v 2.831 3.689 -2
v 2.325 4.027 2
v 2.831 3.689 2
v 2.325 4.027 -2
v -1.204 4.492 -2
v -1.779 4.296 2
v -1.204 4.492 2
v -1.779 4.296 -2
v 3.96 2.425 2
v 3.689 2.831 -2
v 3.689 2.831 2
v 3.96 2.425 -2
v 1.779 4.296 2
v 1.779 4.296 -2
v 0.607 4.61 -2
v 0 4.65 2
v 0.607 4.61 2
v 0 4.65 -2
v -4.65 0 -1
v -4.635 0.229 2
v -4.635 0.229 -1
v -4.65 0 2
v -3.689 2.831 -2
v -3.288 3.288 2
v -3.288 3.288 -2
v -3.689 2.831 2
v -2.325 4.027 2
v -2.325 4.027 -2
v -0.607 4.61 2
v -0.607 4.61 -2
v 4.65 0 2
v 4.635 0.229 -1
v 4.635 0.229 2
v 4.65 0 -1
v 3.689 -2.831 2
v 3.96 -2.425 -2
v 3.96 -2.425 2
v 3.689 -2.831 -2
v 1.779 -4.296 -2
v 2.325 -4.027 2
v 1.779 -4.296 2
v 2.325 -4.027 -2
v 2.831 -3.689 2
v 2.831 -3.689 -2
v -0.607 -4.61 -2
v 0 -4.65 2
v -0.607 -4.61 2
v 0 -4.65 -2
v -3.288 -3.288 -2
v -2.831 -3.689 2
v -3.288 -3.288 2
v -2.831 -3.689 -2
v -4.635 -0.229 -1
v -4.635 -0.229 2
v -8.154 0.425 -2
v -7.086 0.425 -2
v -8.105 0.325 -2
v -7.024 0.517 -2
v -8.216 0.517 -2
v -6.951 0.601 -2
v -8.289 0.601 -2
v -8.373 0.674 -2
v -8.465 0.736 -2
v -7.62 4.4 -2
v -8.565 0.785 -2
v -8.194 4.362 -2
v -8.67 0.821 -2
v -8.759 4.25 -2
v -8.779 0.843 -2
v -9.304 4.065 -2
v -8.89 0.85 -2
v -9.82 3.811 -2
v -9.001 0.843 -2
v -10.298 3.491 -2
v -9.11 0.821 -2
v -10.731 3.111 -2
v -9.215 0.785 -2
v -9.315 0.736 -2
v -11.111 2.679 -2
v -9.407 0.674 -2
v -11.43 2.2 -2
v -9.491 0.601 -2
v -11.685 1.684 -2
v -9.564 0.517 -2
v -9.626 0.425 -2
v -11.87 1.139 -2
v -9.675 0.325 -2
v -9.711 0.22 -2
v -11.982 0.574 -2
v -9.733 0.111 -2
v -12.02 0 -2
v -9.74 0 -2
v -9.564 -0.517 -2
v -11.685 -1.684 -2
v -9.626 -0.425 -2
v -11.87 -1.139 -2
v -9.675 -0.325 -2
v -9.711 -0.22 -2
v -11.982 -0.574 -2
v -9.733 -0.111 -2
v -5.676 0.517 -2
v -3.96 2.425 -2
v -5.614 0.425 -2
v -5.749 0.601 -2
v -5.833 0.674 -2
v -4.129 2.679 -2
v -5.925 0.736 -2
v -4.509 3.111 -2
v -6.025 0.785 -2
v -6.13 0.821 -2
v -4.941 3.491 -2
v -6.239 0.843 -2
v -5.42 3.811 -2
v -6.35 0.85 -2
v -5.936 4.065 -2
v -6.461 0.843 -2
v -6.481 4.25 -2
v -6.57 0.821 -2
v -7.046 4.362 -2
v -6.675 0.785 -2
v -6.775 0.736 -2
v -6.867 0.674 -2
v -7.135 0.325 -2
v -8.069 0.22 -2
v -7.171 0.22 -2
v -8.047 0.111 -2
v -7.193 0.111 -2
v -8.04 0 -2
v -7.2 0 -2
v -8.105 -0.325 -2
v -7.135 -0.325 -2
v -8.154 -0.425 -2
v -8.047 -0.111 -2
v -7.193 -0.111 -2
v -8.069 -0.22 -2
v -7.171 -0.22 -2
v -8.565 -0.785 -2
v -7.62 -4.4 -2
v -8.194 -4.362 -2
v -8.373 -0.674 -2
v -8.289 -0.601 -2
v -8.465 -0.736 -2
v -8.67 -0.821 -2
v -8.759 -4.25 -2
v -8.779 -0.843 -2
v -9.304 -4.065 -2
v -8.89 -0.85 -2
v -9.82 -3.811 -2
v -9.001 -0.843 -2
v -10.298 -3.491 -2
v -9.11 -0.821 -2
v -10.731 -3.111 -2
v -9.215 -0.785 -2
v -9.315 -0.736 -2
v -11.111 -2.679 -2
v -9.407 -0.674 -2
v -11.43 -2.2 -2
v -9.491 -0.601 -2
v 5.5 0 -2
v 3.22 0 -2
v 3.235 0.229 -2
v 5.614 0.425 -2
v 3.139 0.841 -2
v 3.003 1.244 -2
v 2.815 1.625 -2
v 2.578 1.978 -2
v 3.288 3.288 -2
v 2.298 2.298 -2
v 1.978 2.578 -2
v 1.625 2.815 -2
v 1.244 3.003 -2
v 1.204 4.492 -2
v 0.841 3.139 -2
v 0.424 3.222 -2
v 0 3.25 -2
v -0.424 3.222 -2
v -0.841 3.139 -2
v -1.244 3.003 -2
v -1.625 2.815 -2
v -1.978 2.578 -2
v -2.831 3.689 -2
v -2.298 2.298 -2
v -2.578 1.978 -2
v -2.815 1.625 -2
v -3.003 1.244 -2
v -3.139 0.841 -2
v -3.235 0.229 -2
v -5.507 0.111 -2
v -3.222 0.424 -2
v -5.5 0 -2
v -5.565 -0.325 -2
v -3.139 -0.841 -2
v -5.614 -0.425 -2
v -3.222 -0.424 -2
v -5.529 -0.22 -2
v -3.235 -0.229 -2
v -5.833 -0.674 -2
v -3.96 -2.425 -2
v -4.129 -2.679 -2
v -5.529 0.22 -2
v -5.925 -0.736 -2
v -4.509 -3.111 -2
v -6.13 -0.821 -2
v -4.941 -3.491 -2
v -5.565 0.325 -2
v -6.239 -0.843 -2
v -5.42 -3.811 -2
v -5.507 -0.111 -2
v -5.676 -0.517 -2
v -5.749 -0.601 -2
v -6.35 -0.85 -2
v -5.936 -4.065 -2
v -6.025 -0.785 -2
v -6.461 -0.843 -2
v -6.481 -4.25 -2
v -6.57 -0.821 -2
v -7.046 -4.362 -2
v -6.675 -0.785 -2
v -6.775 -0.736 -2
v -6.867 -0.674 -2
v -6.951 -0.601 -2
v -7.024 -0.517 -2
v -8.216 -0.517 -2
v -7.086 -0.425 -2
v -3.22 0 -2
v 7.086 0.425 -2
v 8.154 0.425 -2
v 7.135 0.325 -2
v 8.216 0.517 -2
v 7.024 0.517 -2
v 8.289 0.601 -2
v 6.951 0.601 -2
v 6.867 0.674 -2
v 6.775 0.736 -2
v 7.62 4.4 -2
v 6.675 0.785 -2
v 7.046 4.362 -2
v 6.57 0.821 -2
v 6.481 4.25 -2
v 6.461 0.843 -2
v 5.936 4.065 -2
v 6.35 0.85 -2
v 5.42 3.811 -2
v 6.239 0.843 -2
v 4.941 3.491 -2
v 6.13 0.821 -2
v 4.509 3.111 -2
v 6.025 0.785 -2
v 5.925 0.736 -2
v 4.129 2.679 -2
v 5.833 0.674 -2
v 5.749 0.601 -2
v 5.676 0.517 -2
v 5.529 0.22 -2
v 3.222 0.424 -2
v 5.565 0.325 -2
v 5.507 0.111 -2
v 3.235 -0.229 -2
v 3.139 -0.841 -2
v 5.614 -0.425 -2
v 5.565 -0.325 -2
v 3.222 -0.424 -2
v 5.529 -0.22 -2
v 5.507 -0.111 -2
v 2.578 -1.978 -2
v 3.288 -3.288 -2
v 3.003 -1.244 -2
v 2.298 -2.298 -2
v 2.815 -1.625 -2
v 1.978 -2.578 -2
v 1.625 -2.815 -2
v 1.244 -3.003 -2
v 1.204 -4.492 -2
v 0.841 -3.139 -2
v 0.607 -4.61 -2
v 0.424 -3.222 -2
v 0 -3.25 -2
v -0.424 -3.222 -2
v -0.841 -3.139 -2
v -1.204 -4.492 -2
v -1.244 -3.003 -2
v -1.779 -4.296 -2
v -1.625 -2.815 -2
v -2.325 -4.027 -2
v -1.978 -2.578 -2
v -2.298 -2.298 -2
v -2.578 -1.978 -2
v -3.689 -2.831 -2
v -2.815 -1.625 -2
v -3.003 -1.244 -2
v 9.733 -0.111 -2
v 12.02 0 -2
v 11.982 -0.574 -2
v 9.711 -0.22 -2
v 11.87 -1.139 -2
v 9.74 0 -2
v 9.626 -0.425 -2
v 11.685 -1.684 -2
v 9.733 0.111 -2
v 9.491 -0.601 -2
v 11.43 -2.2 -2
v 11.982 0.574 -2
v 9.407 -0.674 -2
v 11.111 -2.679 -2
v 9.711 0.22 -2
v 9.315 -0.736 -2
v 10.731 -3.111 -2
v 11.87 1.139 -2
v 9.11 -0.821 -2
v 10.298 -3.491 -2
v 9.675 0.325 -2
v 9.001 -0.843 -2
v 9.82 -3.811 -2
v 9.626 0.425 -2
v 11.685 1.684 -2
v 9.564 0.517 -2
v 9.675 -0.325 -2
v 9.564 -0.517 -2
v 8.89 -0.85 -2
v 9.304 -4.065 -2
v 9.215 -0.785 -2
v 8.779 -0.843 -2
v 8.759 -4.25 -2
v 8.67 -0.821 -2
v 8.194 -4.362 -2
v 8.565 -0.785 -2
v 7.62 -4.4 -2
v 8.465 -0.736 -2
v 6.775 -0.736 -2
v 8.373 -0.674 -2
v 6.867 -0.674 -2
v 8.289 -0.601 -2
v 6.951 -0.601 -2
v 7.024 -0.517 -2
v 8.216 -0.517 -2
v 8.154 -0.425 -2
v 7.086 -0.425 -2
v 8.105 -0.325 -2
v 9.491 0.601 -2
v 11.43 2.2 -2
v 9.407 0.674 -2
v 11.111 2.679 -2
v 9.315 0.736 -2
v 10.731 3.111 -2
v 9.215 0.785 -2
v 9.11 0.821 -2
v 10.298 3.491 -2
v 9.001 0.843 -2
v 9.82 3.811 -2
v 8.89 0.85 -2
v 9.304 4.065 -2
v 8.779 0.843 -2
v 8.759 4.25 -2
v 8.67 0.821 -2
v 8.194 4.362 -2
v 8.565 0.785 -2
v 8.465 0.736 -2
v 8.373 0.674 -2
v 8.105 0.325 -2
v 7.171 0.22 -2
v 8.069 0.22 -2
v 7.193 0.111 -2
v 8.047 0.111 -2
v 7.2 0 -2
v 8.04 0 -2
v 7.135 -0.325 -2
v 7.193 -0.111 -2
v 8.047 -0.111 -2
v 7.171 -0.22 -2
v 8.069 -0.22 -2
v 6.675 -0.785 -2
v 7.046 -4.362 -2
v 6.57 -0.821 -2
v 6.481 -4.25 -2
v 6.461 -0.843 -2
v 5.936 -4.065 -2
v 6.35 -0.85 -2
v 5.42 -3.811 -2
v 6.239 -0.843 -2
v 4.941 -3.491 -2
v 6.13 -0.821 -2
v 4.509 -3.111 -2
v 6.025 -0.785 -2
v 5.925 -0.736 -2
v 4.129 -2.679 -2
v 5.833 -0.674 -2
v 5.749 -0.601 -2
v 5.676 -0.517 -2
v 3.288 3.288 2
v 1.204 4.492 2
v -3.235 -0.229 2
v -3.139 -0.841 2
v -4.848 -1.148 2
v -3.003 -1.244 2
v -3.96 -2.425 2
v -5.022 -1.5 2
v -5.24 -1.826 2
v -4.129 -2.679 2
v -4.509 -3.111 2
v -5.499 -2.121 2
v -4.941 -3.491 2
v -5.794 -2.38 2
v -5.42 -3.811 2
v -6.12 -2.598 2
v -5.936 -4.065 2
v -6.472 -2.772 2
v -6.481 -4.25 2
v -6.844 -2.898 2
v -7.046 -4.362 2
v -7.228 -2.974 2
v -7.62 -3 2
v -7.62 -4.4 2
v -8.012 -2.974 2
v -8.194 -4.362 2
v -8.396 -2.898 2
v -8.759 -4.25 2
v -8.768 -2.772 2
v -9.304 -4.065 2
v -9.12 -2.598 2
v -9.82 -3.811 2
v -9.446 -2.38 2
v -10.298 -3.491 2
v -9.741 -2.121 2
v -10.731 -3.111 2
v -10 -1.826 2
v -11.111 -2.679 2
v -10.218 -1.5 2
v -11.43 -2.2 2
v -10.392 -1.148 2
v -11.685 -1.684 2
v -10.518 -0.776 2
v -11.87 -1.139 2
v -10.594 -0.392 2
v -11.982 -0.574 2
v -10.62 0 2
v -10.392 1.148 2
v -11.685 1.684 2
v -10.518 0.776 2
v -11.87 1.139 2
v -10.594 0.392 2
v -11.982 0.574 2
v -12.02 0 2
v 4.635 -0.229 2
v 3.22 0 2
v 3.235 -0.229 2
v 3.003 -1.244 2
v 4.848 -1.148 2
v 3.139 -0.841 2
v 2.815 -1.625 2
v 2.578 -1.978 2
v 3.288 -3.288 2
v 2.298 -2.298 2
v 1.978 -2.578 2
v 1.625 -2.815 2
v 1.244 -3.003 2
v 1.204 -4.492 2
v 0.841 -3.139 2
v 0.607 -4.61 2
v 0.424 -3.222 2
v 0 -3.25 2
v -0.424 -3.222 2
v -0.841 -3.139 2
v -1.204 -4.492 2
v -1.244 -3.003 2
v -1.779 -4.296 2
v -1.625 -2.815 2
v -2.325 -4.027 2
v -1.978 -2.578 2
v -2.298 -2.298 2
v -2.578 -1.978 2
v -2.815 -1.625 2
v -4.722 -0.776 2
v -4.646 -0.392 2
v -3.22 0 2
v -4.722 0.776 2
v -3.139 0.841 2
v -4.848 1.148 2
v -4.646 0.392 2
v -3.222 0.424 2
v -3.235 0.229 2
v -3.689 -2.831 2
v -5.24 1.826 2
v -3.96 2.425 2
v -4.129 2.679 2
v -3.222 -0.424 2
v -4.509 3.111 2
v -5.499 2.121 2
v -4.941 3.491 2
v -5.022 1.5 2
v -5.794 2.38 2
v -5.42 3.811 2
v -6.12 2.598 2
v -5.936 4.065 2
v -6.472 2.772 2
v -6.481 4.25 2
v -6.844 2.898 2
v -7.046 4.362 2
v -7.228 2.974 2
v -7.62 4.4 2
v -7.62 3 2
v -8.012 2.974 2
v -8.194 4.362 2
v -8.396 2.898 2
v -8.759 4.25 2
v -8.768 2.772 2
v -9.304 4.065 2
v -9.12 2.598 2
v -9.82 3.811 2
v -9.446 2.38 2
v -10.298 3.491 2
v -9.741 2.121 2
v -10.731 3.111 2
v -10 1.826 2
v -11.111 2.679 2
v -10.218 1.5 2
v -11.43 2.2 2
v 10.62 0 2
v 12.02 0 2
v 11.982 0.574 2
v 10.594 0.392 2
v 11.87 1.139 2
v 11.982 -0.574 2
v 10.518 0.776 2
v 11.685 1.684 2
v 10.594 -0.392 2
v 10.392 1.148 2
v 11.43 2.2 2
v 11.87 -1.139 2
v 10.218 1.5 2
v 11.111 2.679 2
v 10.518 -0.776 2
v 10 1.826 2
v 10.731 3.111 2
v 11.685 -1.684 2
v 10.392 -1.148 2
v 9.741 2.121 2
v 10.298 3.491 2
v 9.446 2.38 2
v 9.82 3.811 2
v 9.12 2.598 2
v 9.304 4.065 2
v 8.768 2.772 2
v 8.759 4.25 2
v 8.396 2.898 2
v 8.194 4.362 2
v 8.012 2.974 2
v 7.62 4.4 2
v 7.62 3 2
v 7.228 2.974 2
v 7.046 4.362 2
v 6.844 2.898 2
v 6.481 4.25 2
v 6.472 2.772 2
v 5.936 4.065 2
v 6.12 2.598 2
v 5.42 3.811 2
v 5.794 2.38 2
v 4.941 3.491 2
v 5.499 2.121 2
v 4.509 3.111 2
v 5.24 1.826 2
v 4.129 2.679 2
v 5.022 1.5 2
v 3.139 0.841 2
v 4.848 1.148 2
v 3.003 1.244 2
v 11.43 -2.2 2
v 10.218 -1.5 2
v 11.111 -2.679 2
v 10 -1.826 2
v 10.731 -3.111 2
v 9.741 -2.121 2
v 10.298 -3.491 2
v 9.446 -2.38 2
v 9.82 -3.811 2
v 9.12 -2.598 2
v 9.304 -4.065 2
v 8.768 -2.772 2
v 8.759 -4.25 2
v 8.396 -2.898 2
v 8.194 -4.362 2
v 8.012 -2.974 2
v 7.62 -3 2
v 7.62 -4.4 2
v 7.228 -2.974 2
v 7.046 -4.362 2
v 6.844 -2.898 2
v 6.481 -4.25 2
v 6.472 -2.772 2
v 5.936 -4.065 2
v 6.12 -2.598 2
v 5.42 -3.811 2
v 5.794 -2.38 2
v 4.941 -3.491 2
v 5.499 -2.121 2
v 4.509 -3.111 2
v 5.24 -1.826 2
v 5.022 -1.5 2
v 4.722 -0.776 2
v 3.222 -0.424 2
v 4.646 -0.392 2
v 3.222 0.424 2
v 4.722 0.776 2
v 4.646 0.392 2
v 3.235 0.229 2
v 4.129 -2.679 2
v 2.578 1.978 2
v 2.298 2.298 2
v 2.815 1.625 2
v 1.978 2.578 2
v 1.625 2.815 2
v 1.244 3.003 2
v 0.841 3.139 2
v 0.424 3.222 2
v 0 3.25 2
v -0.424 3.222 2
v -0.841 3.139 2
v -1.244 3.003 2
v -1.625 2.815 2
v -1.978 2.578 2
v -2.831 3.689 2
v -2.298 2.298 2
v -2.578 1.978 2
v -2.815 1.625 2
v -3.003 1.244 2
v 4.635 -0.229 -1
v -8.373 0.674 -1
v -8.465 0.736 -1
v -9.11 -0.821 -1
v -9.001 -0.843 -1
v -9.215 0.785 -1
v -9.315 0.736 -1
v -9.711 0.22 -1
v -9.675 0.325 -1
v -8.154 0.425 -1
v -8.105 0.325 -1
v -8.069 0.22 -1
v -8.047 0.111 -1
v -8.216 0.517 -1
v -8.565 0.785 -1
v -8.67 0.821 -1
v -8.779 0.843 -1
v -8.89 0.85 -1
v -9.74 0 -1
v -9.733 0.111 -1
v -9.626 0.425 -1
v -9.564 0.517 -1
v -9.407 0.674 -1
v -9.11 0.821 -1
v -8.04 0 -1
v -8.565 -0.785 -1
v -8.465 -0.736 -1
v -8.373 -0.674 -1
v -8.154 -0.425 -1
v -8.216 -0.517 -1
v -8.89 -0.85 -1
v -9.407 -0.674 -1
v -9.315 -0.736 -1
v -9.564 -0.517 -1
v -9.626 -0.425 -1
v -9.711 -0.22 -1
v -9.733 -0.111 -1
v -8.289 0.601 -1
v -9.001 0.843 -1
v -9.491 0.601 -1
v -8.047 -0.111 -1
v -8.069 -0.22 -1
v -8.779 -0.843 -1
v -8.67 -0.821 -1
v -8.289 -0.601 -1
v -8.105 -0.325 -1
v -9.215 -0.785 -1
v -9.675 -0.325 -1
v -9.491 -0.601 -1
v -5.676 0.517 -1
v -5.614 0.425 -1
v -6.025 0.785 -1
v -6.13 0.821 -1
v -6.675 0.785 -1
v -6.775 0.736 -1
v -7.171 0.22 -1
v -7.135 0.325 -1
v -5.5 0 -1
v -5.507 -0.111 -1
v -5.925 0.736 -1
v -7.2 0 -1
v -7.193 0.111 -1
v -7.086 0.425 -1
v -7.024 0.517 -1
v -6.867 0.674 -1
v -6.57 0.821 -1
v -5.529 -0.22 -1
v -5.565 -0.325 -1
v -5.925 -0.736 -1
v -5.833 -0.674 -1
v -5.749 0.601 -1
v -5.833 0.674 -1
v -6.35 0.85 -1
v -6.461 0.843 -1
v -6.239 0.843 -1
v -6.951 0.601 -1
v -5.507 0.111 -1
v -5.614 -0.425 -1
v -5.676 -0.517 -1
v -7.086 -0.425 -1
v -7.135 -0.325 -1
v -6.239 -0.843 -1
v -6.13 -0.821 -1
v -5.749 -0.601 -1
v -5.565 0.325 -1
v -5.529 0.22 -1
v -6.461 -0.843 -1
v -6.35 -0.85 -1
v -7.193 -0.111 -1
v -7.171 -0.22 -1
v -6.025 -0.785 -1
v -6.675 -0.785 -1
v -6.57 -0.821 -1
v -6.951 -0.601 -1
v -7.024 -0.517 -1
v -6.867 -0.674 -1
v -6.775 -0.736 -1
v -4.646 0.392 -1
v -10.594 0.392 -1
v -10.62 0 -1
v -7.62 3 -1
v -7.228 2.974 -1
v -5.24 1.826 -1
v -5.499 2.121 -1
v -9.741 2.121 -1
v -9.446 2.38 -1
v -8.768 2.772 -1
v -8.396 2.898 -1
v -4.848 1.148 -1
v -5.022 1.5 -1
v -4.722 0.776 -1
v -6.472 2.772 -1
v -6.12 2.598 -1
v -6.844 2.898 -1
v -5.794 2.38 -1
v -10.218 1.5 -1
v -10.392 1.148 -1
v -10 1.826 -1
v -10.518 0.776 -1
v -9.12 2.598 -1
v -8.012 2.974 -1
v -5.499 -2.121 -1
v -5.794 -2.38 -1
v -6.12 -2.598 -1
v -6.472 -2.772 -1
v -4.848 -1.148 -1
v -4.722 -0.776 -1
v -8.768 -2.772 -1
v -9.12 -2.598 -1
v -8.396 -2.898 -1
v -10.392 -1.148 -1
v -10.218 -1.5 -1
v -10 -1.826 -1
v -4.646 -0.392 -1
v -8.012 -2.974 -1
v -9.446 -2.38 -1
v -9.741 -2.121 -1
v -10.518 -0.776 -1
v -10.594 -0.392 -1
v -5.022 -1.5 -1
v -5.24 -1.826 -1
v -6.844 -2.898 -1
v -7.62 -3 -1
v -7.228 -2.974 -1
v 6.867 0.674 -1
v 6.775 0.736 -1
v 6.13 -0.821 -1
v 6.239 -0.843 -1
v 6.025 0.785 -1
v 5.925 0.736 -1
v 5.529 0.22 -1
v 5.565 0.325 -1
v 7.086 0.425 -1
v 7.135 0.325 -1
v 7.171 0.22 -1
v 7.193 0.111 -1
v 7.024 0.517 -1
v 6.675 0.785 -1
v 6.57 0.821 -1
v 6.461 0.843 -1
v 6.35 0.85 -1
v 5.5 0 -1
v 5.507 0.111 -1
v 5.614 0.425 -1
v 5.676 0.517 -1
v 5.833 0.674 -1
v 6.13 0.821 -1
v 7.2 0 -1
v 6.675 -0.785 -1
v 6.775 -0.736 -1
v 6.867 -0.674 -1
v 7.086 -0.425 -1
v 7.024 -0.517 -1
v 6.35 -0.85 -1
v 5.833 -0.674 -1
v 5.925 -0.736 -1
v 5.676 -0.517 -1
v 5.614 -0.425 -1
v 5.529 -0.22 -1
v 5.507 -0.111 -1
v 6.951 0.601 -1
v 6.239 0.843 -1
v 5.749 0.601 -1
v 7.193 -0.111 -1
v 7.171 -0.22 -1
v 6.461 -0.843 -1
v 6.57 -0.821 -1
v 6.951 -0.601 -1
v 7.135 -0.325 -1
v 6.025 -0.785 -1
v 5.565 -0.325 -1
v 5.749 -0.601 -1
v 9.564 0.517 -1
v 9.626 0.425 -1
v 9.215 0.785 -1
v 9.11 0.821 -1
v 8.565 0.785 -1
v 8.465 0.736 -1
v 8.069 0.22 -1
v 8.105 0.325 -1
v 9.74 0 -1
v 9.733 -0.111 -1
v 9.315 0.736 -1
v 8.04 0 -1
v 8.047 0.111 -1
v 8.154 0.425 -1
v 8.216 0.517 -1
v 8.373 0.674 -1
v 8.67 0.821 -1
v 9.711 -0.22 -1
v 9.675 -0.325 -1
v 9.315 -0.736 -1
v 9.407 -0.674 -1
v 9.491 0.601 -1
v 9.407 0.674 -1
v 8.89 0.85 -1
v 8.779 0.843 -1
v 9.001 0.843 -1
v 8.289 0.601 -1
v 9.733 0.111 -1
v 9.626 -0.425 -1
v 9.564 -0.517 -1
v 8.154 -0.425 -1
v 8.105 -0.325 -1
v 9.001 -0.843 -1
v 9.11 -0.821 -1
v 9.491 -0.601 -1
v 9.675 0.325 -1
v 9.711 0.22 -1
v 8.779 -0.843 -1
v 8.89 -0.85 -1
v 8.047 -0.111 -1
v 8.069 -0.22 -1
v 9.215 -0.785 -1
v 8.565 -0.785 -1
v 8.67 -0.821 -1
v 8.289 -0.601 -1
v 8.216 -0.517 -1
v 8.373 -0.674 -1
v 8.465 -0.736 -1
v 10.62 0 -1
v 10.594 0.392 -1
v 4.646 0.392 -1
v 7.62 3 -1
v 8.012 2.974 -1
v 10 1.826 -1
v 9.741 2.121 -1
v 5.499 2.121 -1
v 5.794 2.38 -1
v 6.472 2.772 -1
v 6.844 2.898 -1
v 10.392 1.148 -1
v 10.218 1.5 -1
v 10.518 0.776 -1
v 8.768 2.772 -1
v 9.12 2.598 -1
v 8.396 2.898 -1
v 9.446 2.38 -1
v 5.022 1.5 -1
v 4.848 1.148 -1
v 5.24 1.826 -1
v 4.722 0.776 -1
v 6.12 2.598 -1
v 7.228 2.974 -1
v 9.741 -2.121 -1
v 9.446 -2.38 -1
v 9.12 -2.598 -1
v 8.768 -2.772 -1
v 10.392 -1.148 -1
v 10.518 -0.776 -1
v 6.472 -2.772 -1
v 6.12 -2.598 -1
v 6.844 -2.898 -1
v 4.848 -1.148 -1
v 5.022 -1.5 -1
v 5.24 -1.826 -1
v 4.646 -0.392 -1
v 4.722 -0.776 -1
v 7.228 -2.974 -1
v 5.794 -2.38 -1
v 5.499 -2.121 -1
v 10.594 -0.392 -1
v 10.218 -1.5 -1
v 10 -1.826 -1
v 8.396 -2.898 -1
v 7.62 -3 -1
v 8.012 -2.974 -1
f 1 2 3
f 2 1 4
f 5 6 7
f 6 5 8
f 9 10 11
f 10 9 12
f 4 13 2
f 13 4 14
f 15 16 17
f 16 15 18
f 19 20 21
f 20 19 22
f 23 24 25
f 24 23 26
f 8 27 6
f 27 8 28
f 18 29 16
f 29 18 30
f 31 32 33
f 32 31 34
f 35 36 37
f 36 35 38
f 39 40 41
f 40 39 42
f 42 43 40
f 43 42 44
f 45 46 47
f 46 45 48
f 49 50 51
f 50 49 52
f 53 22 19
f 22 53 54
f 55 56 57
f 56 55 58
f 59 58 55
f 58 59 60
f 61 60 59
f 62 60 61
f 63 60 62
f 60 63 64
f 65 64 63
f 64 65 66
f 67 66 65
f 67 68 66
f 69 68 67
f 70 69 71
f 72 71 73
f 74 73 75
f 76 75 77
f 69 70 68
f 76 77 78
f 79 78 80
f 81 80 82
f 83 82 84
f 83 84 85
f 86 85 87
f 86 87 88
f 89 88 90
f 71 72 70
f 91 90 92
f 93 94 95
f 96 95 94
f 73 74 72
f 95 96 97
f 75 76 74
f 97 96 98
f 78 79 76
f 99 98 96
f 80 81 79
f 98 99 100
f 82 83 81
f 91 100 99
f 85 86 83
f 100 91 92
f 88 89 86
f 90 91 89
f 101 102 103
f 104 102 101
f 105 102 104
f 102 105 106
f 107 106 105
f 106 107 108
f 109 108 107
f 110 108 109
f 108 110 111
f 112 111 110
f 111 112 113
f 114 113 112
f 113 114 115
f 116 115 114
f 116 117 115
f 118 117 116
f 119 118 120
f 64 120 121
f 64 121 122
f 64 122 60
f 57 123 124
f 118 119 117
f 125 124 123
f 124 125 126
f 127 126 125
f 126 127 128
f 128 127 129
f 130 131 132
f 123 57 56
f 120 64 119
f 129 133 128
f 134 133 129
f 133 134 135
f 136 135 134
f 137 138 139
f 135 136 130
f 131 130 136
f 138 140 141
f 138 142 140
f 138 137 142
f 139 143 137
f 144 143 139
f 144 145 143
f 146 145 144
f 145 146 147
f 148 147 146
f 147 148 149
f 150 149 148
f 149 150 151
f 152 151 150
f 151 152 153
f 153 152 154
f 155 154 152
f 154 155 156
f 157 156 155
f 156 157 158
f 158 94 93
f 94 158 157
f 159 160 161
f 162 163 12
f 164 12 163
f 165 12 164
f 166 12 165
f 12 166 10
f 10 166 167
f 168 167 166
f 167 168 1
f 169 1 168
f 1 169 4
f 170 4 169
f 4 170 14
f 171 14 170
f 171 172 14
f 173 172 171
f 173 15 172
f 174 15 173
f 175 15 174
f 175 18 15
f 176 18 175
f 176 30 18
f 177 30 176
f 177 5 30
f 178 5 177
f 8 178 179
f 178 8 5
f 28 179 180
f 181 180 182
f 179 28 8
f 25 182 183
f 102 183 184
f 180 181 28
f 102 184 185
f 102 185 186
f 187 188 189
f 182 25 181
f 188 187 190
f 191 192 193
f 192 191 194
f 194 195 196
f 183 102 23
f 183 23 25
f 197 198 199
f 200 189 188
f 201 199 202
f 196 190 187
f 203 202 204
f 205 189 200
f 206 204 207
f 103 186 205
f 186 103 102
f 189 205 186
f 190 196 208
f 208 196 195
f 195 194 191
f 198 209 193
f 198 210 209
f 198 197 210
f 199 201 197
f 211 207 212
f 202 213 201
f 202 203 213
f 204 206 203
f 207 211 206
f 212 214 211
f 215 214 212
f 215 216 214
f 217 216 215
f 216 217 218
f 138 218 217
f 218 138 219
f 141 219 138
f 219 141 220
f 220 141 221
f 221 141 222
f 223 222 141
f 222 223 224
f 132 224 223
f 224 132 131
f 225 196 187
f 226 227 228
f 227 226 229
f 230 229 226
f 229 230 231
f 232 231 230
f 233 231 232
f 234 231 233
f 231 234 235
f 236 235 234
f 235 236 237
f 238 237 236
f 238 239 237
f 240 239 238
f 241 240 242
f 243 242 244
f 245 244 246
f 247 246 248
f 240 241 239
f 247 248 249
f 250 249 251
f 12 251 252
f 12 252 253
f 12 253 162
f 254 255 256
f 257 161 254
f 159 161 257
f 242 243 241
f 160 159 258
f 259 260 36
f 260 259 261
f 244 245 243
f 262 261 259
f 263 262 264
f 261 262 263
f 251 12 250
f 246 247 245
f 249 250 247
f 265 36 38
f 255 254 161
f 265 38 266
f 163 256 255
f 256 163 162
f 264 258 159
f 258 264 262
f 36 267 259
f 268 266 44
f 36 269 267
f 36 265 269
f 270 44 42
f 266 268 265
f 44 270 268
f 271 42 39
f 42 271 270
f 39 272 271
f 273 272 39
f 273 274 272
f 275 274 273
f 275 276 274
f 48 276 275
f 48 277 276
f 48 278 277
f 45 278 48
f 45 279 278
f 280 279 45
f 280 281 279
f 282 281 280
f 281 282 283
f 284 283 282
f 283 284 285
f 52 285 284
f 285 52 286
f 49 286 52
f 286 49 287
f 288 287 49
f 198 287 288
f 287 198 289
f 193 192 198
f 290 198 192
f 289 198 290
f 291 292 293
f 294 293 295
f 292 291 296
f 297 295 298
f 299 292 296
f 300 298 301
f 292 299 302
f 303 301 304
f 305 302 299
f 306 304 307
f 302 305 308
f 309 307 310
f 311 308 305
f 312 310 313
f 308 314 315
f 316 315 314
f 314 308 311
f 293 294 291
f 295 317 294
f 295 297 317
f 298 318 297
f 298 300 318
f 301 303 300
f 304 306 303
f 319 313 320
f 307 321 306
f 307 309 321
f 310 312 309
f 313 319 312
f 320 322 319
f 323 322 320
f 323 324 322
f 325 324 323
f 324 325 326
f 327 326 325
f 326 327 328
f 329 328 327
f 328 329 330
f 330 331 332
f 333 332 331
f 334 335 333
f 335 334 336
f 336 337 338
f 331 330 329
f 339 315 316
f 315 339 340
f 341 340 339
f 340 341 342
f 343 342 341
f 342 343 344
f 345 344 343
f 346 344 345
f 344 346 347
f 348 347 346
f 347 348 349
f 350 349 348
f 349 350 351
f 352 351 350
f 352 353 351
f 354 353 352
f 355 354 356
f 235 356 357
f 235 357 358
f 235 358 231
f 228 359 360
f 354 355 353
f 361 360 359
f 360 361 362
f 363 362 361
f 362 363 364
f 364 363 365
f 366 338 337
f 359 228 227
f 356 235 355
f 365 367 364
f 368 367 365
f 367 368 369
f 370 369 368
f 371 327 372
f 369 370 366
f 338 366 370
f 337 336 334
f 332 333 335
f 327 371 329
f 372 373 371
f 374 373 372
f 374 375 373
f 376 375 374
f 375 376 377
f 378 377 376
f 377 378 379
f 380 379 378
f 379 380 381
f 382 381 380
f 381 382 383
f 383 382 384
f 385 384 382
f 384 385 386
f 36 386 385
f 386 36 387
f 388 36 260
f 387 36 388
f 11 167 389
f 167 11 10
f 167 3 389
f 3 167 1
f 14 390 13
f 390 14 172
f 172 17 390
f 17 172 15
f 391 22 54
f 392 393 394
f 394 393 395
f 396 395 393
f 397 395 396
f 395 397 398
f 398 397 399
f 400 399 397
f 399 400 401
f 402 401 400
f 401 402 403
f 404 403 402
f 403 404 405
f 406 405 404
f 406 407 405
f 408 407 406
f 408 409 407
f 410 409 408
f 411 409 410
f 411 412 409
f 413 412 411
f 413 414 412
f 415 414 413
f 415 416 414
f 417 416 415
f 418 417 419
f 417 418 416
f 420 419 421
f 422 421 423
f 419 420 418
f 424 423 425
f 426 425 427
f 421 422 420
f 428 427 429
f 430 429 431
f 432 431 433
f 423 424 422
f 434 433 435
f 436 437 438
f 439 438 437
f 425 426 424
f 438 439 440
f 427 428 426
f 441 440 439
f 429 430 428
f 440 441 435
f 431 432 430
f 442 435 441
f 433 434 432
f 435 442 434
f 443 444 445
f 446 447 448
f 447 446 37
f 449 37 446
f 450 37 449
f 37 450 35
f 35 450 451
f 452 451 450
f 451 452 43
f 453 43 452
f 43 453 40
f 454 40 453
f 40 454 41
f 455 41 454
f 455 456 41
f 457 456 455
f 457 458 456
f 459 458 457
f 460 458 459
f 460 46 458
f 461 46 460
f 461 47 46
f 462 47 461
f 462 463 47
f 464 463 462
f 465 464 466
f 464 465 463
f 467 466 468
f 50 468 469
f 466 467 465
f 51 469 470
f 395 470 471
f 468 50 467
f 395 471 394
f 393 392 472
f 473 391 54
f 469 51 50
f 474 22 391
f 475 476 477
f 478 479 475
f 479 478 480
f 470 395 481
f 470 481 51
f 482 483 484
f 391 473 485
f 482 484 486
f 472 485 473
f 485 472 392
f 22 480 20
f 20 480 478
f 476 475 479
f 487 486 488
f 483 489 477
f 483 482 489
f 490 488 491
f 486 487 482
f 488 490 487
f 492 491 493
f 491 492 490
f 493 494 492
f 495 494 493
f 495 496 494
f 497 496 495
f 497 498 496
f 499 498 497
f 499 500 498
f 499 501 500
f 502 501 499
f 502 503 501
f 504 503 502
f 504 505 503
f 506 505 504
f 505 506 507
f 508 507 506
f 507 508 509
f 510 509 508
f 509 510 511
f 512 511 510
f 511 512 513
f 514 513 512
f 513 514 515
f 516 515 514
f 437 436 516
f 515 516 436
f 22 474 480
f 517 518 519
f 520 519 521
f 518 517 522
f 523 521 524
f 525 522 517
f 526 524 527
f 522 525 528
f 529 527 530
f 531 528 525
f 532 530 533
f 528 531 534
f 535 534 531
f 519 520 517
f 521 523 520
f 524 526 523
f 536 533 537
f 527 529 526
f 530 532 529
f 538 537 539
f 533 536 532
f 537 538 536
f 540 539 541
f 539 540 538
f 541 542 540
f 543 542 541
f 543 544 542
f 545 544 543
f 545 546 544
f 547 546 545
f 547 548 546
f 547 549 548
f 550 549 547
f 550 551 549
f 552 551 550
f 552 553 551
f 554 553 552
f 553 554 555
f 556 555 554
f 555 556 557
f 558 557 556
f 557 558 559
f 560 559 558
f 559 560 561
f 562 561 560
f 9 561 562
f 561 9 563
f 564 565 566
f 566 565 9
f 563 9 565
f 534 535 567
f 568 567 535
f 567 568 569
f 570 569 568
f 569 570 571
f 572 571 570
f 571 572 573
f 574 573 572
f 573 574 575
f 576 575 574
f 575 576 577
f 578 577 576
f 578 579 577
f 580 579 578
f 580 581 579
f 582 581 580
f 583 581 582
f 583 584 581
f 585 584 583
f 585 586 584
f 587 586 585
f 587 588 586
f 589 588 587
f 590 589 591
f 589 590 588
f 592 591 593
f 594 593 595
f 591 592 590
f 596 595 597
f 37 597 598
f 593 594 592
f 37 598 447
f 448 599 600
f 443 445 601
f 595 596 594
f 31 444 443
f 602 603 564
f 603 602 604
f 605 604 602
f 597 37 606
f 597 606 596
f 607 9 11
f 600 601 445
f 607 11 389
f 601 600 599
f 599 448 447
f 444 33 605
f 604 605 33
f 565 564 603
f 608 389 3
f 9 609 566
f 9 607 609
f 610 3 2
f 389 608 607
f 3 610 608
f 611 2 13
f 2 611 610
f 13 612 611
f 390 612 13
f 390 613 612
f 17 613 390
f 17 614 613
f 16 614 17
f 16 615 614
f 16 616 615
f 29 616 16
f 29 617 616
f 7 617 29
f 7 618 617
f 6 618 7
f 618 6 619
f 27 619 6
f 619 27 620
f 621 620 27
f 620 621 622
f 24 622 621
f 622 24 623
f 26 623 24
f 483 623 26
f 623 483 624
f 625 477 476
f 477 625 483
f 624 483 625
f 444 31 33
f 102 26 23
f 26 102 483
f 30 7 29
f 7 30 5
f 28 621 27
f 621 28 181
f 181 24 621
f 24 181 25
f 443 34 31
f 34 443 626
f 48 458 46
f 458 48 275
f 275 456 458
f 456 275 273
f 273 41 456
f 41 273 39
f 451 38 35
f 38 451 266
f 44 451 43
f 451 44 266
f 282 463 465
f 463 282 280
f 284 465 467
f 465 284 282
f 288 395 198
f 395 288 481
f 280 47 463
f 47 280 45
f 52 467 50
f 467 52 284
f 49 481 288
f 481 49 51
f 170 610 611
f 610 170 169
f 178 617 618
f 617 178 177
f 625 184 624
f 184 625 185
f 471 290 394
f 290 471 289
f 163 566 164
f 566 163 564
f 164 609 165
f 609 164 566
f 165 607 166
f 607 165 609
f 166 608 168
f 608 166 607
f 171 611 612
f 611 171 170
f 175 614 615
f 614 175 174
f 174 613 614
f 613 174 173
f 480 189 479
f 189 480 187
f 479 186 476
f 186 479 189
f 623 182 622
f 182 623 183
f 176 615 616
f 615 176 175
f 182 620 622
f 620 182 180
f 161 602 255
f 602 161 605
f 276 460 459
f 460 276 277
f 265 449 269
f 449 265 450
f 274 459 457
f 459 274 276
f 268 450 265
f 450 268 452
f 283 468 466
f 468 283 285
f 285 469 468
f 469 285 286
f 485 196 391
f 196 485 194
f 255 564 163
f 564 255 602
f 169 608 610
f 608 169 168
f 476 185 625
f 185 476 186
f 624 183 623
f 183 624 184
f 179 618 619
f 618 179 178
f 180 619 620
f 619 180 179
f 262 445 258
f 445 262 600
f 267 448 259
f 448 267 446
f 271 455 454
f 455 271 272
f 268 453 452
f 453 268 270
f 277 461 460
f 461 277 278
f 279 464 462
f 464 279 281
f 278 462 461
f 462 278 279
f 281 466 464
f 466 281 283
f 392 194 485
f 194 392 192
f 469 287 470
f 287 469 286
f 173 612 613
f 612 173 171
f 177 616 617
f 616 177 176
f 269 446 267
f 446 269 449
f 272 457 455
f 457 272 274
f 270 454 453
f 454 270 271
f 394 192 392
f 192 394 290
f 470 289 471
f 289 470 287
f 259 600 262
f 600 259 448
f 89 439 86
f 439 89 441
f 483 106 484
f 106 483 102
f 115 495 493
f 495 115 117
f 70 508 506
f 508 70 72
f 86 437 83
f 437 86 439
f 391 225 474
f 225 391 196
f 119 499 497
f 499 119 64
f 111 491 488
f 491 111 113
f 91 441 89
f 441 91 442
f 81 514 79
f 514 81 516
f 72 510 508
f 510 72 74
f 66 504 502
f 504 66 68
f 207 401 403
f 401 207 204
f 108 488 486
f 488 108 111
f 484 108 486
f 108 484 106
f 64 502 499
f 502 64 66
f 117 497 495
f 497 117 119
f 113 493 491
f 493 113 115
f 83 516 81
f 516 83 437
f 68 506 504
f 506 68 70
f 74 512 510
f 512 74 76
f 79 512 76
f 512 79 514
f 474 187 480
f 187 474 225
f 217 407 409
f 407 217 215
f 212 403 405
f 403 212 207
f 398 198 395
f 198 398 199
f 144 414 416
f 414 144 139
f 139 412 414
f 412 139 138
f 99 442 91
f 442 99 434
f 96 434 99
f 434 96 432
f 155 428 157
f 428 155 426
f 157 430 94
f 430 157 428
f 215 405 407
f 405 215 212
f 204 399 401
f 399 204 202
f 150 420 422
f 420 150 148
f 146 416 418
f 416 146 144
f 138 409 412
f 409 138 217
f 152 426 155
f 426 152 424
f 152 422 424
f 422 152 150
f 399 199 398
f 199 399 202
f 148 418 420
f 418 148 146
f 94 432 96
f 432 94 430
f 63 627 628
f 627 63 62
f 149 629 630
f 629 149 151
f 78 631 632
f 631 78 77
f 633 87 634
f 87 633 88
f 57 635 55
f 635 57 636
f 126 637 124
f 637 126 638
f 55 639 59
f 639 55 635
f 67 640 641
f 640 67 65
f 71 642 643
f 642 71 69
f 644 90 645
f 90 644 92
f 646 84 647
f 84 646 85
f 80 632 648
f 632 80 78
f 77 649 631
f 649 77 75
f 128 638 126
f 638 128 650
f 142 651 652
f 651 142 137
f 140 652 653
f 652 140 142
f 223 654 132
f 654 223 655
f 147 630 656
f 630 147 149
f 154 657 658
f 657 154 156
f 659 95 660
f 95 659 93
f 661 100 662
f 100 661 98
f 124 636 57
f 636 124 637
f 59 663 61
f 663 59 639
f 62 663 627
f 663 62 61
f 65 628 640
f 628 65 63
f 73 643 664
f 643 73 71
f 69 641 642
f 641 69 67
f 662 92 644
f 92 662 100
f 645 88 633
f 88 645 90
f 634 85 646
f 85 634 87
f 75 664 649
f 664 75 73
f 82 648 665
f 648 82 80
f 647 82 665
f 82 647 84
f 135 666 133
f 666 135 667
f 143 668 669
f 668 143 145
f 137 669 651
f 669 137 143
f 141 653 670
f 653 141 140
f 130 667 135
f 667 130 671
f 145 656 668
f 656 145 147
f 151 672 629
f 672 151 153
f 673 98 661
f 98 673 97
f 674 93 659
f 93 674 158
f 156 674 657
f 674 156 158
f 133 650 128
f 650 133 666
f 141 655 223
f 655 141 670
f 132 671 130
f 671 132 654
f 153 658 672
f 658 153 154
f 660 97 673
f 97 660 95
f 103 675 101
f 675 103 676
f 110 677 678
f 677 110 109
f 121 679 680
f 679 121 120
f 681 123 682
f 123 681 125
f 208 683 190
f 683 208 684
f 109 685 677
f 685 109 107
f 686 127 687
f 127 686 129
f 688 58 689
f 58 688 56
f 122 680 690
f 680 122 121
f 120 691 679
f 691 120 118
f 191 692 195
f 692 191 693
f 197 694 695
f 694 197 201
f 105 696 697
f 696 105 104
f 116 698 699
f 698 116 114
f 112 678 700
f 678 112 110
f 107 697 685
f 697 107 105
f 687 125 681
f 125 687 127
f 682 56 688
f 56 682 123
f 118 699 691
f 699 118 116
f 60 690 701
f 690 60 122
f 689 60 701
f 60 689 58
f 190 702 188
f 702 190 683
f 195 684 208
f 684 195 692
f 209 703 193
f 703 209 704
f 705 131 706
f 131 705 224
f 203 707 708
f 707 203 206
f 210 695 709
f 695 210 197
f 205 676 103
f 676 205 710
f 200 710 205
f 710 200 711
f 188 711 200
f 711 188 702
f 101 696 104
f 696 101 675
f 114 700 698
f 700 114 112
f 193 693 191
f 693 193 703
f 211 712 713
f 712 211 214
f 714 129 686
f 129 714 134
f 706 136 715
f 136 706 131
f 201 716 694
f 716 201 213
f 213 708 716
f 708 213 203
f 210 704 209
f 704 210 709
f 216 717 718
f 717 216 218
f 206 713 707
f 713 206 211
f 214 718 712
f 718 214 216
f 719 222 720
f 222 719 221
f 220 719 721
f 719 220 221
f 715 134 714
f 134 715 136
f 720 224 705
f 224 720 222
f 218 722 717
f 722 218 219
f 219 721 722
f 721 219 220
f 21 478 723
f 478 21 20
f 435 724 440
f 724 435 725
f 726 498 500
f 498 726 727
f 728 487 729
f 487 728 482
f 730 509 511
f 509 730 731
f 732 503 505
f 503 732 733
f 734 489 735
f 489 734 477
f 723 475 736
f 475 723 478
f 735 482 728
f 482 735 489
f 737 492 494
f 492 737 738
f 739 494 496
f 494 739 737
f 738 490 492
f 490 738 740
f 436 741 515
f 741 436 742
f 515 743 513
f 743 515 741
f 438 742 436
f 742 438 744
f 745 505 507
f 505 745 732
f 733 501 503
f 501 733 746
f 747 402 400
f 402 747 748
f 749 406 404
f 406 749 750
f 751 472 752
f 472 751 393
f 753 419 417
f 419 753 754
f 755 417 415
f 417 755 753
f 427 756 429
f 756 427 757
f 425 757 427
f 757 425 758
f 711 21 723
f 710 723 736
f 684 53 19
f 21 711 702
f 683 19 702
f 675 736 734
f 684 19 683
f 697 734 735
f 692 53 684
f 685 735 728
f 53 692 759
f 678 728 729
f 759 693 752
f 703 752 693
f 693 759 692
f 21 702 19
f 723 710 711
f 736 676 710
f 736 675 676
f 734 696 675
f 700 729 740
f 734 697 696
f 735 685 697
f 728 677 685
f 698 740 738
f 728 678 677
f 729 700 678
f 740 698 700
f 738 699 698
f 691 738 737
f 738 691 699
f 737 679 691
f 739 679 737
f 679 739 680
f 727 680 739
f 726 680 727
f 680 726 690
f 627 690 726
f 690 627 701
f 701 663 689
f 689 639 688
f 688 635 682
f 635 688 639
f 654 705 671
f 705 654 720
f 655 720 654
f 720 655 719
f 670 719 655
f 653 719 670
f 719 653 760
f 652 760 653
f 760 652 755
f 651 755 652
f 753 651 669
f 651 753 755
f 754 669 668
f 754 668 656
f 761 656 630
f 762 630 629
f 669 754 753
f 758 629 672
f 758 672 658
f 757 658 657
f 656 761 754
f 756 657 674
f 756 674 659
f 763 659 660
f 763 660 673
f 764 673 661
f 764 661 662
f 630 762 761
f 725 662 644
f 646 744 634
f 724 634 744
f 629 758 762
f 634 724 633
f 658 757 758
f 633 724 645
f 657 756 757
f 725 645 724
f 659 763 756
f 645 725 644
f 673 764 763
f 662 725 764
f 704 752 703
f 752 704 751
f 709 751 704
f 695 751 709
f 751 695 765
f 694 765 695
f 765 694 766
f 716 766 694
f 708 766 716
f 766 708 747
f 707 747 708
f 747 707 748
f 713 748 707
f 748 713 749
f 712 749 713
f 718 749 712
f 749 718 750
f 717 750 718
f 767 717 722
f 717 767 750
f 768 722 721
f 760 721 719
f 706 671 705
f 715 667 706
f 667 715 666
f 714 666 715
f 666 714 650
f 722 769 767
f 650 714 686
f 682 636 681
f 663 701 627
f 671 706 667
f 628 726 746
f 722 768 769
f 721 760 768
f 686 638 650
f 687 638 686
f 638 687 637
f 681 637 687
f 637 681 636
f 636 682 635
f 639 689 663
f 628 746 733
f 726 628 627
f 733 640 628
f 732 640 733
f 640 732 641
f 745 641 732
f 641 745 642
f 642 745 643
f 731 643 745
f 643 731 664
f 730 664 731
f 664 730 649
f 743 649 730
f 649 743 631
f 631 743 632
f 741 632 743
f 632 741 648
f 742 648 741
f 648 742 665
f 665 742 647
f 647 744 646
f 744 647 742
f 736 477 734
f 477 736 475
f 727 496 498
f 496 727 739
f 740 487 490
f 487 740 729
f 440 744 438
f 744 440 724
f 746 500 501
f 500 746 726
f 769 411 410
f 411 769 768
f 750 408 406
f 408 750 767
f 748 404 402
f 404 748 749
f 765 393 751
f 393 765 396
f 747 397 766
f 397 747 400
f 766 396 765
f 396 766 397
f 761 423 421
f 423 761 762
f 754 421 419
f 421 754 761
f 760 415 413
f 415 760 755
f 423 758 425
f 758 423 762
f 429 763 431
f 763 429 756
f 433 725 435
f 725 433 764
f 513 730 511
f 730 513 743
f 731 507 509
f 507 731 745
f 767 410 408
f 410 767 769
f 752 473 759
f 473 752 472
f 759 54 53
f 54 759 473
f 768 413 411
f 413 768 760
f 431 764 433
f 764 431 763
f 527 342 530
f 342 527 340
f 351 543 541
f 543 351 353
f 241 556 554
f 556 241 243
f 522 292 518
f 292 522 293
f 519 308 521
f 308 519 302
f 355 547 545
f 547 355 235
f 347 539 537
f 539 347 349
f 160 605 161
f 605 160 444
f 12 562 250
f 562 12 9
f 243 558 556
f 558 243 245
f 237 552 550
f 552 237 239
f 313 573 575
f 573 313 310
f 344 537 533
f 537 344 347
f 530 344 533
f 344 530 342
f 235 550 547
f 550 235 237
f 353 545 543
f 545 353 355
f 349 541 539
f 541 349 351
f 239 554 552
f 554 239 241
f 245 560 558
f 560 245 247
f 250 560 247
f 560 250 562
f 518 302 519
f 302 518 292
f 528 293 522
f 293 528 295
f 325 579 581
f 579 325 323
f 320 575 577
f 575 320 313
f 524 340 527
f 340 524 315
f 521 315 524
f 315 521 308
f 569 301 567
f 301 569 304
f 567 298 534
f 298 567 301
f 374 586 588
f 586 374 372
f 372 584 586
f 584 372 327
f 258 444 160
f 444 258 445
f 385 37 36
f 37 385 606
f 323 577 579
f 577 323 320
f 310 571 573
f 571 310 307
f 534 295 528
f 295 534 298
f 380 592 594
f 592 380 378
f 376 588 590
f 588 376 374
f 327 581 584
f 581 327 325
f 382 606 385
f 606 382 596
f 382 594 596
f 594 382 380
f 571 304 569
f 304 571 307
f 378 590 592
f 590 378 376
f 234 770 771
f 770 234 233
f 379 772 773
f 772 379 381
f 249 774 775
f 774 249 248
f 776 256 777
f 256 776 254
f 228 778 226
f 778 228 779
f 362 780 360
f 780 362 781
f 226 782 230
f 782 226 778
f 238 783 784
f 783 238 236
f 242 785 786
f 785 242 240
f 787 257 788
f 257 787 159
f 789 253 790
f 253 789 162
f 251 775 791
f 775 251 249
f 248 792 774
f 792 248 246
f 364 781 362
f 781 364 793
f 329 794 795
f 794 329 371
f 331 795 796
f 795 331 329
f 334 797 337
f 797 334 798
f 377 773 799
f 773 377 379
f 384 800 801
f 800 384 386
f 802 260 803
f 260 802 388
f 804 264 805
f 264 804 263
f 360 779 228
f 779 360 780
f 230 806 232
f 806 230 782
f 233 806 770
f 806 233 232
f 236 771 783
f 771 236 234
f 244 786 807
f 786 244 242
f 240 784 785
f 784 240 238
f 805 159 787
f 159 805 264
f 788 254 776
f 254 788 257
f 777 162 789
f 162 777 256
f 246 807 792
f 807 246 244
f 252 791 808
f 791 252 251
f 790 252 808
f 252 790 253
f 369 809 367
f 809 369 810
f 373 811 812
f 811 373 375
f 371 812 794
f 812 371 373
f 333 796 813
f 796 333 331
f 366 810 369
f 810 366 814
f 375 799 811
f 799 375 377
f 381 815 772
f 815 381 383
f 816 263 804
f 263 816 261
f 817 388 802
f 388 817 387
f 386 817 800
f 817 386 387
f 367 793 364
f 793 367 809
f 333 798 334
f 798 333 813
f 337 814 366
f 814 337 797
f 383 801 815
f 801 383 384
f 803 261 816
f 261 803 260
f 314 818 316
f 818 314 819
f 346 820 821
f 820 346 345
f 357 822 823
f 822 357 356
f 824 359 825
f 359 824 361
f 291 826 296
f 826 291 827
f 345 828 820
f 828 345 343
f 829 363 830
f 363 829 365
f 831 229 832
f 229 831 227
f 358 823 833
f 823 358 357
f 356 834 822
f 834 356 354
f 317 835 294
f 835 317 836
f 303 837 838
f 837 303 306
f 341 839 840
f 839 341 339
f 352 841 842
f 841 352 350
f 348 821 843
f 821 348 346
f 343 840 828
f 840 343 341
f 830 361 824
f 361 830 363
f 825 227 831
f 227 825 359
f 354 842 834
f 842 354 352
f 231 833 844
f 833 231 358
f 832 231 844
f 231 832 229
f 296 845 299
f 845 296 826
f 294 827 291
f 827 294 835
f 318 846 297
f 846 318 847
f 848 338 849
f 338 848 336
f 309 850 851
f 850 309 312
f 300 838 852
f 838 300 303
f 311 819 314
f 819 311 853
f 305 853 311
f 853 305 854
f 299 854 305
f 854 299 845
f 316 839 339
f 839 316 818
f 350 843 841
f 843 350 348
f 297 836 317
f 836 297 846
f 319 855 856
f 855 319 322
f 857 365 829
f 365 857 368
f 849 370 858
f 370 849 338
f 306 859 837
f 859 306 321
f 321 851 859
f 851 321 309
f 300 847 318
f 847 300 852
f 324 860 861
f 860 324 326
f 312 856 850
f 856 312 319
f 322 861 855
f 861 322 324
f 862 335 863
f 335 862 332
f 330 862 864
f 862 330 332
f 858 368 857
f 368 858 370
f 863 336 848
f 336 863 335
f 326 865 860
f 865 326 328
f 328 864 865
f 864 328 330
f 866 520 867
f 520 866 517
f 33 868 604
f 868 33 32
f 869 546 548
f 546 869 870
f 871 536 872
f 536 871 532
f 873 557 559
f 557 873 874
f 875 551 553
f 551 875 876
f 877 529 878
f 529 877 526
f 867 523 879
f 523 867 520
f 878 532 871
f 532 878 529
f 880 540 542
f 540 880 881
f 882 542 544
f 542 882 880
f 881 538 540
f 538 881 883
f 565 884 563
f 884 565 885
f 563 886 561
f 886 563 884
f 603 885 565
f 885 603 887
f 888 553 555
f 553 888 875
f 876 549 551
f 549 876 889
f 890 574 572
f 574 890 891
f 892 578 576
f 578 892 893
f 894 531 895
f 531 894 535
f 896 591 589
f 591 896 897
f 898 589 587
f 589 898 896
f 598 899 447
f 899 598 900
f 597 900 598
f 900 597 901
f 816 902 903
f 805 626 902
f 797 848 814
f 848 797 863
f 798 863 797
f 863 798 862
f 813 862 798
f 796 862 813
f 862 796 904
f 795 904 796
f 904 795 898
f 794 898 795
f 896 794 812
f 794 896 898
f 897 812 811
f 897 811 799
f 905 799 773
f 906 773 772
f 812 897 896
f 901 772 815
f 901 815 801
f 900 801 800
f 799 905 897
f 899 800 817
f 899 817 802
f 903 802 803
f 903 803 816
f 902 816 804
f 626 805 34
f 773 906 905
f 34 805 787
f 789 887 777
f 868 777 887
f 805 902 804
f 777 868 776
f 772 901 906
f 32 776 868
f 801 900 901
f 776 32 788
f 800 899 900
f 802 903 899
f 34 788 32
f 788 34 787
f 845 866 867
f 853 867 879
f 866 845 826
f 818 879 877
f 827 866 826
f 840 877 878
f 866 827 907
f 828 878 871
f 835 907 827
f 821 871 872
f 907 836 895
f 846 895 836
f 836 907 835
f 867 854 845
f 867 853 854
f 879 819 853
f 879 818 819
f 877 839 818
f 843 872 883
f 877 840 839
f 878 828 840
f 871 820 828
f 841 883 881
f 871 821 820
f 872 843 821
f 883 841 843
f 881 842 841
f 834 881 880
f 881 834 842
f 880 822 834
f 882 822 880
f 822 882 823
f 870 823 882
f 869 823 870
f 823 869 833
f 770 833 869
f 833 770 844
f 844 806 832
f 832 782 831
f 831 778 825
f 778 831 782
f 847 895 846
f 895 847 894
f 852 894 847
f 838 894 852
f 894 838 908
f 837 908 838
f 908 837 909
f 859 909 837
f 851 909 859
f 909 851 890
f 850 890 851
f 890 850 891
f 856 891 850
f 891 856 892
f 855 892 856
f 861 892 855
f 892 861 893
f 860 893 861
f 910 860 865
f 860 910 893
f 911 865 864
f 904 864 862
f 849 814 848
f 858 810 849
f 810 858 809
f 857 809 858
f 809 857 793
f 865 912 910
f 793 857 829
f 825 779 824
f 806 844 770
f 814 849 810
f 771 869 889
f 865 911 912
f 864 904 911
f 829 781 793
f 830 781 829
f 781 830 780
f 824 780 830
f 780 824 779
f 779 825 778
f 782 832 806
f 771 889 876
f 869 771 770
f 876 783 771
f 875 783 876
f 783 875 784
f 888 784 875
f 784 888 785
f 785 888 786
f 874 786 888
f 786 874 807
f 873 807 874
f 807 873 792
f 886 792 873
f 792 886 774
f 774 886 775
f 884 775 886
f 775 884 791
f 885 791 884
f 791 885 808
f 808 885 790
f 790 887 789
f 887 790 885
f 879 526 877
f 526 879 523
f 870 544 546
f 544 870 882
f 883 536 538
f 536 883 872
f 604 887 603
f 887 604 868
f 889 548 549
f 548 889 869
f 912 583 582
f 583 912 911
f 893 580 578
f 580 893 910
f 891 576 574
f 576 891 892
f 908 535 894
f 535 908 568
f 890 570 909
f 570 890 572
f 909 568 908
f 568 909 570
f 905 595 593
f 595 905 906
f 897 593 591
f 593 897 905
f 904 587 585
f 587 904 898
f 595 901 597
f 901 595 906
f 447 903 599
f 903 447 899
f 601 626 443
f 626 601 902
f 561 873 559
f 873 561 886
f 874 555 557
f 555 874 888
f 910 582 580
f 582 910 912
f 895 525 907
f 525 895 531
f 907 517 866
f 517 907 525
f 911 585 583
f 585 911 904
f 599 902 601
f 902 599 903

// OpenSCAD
fn = 48;
wandstaerke = 1.4;
hoehe = 4;

difference()
{
  cylinder(r=6.5/2+wandstaerke, h=hoehe, center=true, $fn=fn);
  cylinder(r=6.5/2, h=hoehe+1, center=true, $fn=fn);
}

module abstandhalter()
{
  difference()
  {
    cylinder(r=6/2+wandstaerke, h=hoehe, center=true, $fn=fn);
    translate([-1.27,0,0]) cylinder(r=0.85, h=hoehe+1, center=true, $fn=fn);
    translate([+1.27,0,0]) cylinder(r=0.85, h=hoehe+1, center=true, $fn=fn);
    translate([0,0,1]) cylinder(r=6/2, h=hoehe, center=true, $fn=fn);
  }
}

translate([-7.62,0,0]) abstandhalter();
translate([+7.62,0,0]) abstandhalter();
